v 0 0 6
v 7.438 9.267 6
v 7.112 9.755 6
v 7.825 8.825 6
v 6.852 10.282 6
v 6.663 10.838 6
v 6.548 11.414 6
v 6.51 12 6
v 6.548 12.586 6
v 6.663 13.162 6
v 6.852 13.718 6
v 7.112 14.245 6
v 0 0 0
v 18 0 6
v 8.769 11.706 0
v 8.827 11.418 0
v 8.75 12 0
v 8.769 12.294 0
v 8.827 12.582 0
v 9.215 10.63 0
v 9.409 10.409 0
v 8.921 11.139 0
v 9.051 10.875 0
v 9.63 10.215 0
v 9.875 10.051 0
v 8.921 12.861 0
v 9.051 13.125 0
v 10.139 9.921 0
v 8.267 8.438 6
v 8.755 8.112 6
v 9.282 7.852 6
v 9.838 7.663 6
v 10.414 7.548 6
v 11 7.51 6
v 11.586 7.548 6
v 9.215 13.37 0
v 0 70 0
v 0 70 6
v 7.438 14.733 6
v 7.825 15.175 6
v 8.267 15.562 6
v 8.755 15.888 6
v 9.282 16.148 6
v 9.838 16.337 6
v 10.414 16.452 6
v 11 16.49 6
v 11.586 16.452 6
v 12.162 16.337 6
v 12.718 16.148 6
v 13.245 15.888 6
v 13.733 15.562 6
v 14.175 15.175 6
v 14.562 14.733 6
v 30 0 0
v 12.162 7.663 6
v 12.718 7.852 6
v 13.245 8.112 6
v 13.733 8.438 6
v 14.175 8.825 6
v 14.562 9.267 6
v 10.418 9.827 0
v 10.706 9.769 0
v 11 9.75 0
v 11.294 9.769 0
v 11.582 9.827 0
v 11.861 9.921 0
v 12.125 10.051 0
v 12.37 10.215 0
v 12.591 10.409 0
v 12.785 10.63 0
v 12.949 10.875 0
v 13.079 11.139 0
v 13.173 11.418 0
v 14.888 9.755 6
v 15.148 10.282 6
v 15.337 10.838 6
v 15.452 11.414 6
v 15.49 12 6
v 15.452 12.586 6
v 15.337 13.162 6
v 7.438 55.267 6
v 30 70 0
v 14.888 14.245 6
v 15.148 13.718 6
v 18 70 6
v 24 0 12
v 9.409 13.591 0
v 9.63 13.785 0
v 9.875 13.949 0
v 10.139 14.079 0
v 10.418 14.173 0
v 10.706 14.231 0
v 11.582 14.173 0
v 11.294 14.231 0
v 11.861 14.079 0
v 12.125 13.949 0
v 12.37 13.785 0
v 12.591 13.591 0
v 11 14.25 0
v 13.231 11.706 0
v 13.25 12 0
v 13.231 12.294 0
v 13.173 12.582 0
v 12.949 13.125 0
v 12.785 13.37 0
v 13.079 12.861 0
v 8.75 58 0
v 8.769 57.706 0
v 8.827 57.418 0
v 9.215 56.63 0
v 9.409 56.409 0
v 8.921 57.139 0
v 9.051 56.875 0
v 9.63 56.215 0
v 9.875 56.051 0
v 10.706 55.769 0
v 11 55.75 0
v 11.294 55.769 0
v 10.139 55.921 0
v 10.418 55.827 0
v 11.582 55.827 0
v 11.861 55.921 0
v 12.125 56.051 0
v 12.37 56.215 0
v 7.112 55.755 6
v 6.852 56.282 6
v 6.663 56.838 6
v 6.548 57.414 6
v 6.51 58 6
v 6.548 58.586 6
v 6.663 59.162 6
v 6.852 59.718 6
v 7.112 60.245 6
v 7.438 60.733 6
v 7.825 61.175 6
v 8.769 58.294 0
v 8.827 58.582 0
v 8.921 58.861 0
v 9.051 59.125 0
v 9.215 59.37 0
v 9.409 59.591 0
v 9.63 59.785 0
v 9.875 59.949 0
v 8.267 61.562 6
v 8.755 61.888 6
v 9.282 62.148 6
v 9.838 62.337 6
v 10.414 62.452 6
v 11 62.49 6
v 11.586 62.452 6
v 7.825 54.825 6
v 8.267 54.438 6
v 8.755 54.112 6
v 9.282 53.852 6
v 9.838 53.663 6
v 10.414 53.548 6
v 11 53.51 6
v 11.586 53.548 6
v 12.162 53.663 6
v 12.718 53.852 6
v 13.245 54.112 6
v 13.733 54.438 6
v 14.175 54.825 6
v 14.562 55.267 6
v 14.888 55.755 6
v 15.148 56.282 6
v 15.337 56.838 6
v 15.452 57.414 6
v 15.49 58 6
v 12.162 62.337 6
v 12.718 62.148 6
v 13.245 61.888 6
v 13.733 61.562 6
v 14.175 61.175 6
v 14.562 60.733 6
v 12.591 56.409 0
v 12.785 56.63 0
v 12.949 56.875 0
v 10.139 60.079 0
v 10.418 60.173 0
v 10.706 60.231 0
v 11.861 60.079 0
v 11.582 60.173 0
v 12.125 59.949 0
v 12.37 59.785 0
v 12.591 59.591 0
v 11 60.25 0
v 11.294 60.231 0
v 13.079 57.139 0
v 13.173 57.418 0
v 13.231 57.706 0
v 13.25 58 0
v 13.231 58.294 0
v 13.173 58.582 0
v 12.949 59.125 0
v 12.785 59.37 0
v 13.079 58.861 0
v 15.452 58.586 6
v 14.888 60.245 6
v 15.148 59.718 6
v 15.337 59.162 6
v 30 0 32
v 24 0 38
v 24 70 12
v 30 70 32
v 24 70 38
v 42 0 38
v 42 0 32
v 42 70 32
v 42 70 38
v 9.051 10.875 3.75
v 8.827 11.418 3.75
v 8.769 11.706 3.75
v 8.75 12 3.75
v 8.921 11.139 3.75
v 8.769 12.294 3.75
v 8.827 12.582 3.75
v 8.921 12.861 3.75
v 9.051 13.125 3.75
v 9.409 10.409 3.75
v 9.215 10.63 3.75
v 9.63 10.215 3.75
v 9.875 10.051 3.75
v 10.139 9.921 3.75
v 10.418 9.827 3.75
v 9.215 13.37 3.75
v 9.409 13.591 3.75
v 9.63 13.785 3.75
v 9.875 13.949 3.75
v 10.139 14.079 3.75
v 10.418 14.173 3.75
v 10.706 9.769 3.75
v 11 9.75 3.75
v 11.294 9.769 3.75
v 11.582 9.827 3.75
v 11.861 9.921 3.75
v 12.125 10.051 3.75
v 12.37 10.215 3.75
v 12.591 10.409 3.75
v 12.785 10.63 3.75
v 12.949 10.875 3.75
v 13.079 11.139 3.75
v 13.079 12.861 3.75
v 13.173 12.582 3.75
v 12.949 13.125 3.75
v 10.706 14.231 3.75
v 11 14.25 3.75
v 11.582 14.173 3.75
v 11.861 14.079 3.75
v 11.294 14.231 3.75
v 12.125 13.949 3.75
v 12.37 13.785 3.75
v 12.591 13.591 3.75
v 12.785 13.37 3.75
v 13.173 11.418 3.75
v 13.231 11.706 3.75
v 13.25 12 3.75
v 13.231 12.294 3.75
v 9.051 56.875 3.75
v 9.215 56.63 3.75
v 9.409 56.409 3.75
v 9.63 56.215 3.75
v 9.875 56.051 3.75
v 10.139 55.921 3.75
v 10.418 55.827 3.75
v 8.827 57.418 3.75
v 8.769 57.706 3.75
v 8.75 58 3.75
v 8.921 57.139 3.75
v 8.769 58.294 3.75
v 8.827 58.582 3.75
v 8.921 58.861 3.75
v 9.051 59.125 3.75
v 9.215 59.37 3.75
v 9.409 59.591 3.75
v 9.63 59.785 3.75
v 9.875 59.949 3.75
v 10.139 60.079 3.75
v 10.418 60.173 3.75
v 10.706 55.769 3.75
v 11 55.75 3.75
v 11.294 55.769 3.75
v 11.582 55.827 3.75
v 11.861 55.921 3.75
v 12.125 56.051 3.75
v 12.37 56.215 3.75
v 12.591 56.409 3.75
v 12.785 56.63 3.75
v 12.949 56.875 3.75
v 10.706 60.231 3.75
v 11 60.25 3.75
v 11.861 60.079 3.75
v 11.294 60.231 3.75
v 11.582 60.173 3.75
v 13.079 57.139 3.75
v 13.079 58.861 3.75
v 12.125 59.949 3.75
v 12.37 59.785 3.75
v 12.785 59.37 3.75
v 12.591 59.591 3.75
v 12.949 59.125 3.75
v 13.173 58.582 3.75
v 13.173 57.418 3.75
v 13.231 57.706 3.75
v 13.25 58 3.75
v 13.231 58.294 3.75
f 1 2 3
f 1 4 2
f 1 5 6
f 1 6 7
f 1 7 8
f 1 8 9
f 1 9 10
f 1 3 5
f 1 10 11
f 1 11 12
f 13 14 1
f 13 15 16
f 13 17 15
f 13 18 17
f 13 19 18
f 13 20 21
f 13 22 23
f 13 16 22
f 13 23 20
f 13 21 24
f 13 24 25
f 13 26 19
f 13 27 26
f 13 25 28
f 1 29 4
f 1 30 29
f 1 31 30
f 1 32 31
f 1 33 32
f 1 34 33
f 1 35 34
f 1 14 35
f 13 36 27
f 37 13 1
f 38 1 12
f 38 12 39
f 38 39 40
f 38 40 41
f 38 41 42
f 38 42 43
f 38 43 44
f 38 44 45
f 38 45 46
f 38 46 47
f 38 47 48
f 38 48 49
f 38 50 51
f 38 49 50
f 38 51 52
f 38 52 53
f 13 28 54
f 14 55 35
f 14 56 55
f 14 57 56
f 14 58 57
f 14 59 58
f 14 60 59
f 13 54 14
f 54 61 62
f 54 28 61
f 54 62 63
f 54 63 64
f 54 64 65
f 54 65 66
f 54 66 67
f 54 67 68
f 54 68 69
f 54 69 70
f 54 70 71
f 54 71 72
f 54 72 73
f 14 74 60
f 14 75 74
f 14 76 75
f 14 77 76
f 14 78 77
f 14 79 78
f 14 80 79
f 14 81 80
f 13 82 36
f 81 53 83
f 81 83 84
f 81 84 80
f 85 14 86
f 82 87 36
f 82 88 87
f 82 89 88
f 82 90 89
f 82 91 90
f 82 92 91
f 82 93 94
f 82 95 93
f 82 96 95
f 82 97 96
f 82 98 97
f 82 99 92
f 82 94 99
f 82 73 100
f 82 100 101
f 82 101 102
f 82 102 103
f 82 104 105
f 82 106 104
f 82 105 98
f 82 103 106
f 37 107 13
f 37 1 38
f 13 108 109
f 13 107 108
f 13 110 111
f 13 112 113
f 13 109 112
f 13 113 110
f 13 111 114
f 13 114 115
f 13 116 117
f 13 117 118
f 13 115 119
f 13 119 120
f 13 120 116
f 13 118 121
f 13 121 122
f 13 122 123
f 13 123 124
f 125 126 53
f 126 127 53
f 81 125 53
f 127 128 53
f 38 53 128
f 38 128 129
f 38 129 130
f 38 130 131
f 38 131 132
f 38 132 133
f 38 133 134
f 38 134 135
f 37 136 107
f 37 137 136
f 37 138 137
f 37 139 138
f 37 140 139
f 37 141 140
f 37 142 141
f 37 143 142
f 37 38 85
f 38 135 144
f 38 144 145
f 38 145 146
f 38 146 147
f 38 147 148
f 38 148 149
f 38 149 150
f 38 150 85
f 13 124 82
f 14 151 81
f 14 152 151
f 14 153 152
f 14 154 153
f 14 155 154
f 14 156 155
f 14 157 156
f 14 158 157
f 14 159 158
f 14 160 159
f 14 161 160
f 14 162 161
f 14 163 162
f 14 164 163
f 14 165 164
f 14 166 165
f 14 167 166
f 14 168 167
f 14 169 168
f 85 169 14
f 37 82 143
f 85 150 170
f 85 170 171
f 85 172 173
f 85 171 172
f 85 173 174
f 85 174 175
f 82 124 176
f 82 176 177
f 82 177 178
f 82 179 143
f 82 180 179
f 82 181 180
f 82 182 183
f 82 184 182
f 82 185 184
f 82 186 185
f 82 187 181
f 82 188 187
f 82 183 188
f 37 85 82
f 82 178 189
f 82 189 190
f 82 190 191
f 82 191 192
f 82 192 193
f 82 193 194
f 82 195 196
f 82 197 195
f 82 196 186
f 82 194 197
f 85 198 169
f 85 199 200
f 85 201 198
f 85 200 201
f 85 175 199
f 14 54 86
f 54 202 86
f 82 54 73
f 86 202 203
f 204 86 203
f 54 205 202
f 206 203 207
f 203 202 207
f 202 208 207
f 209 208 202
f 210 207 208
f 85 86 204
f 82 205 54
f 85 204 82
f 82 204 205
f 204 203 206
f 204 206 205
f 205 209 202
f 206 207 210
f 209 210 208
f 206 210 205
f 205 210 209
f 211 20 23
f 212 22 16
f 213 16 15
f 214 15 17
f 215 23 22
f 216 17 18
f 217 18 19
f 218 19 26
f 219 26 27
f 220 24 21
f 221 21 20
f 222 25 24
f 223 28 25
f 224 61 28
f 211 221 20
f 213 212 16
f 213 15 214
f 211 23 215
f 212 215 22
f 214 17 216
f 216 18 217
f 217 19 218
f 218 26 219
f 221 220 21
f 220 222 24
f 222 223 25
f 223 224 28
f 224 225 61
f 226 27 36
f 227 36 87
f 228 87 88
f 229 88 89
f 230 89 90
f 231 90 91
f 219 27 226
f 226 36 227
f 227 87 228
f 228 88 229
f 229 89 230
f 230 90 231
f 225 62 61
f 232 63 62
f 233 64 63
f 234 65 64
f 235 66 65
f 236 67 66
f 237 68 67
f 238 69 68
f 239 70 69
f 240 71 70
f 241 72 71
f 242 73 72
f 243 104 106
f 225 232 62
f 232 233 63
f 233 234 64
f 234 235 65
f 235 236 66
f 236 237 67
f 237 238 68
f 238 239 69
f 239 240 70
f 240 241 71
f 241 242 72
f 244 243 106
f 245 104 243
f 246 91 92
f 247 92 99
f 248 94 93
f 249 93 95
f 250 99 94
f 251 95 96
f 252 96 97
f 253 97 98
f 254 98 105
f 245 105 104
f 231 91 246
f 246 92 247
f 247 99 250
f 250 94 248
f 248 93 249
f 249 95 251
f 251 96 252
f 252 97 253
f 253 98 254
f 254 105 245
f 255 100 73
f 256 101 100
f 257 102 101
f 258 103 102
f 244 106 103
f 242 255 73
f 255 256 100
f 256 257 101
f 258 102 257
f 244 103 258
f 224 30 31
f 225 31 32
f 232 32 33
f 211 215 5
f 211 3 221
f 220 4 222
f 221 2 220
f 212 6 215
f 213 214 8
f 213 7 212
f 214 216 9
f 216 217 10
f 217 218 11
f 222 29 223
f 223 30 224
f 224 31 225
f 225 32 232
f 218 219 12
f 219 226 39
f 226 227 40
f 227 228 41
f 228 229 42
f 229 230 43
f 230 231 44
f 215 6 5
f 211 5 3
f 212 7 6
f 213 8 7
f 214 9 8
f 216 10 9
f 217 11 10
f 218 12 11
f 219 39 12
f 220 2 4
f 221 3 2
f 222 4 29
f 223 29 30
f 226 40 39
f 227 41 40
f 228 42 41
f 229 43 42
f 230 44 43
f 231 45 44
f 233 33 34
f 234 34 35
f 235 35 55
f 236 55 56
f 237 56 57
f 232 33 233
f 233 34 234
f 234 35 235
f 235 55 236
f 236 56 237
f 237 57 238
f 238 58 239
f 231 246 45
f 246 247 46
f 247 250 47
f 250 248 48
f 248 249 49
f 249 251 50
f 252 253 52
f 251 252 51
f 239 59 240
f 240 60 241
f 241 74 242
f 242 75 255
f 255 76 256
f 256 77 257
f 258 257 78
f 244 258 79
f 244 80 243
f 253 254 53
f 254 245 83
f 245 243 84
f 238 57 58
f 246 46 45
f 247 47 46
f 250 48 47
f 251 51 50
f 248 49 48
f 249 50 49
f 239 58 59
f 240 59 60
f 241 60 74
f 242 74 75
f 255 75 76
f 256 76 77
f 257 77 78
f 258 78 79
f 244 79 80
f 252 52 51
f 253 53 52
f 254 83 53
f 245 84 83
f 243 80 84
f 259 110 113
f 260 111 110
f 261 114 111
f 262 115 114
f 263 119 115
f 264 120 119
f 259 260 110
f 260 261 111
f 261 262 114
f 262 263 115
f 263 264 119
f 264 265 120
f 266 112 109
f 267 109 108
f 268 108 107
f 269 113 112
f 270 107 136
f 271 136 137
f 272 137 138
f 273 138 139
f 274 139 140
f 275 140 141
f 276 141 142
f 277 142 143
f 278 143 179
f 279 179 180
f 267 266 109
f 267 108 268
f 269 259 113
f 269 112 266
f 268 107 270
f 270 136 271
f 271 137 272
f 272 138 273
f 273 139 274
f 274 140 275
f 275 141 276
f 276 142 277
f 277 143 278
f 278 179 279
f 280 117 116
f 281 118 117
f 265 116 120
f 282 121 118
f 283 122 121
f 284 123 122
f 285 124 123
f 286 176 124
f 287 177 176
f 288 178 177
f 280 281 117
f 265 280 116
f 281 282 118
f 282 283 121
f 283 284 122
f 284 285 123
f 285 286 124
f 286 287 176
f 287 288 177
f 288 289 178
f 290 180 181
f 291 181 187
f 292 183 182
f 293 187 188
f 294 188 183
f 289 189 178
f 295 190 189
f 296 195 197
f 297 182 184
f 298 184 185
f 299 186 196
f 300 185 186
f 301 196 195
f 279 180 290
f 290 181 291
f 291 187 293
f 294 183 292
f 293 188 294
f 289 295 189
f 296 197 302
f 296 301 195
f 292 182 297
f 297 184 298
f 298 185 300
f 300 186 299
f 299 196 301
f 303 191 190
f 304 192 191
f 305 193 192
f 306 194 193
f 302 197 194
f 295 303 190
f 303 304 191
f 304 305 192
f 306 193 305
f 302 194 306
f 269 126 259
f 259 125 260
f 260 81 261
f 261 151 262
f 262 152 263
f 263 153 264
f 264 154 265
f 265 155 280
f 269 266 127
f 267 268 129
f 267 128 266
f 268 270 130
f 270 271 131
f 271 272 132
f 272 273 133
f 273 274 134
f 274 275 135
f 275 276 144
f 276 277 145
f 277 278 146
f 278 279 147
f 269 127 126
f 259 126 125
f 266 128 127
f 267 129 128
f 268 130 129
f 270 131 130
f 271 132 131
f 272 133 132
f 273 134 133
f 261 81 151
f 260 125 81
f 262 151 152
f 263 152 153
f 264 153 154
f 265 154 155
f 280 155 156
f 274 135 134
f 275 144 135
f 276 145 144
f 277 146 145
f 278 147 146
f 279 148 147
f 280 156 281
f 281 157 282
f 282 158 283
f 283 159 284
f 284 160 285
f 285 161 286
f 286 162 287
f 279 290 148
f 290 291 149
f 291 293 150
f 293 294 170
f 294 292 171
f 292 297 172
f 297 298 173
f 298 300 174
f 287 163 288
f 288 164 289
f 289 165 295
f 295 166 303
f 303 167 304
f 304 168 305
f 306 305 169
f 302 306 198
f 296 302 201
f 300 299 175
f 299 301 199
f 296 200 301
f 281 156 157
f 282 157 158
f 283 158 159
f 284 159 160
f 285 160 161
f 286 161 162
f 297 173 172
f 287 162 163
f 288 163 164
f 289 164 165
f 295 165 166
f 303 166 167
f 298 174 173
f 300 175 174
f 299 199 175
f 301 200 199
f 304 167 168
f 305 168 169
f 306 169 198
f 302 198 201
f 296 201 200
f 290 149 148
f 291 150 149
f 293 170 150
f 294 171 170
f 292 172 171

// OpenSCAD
// Peavey 5150 cord-wrap bracket (Z-cleat). Print 2, mount one near the top
// and one near the bottom of the back panel; wrap the power cord around both.
// All dimensions in mm. Adjust to suit your amp, then F6 + export STL.

width      = 70;   // length of the bracket along the panel
flange     = 24;   // mounting flange depth
standoff   = 32;   // how far the cord sits off the panel
lip        = 12;   // retaining lip that keeps the cord from sliding off
t          = 6;    // wall thickness
hole_d     = 4.5;  // screw clearance (#8 / M4 wood screw)
head_d     = 9;    // countersink head diameter
hole_pitch = 46;   // centre-to-centre spacing of the two screws
fillet     = 6;    // inside corner reinforcement

$fn = 48;

module profile() {
    // Z shape: flange (on panel) -> web (standoff) -> lip (outward)
    square([flange + t, t]);                               // flange
    translate([flange, 0]) square([t, standoff + t]);     // web
    translate([flange, standoff]) square([t + lip, t]);   // lip
    // gusset between flange and web
    translate([flange, t]) rotate(90) polygon([[0,0],[fillet,0],[0,fillet]]);
}

difference() {
    rotate([90,0,0]) translate([0,0,-width]) linear_extrude(width) profile();
    for (x = [-hole_pitch/2, hole_pitch/2])
        translate([flange/2 - 1, width/2 + x, 0]) {
            translate([0,0,-1]) cylinder(d = hole_d, h = t + 2);
            translate([0,0,t - (head_d-hole_d)/2]) cylinder(d1 = hole_d, d2 = head_d, h = (head_d-hole_d)/2 + 0.01);
        }
}
